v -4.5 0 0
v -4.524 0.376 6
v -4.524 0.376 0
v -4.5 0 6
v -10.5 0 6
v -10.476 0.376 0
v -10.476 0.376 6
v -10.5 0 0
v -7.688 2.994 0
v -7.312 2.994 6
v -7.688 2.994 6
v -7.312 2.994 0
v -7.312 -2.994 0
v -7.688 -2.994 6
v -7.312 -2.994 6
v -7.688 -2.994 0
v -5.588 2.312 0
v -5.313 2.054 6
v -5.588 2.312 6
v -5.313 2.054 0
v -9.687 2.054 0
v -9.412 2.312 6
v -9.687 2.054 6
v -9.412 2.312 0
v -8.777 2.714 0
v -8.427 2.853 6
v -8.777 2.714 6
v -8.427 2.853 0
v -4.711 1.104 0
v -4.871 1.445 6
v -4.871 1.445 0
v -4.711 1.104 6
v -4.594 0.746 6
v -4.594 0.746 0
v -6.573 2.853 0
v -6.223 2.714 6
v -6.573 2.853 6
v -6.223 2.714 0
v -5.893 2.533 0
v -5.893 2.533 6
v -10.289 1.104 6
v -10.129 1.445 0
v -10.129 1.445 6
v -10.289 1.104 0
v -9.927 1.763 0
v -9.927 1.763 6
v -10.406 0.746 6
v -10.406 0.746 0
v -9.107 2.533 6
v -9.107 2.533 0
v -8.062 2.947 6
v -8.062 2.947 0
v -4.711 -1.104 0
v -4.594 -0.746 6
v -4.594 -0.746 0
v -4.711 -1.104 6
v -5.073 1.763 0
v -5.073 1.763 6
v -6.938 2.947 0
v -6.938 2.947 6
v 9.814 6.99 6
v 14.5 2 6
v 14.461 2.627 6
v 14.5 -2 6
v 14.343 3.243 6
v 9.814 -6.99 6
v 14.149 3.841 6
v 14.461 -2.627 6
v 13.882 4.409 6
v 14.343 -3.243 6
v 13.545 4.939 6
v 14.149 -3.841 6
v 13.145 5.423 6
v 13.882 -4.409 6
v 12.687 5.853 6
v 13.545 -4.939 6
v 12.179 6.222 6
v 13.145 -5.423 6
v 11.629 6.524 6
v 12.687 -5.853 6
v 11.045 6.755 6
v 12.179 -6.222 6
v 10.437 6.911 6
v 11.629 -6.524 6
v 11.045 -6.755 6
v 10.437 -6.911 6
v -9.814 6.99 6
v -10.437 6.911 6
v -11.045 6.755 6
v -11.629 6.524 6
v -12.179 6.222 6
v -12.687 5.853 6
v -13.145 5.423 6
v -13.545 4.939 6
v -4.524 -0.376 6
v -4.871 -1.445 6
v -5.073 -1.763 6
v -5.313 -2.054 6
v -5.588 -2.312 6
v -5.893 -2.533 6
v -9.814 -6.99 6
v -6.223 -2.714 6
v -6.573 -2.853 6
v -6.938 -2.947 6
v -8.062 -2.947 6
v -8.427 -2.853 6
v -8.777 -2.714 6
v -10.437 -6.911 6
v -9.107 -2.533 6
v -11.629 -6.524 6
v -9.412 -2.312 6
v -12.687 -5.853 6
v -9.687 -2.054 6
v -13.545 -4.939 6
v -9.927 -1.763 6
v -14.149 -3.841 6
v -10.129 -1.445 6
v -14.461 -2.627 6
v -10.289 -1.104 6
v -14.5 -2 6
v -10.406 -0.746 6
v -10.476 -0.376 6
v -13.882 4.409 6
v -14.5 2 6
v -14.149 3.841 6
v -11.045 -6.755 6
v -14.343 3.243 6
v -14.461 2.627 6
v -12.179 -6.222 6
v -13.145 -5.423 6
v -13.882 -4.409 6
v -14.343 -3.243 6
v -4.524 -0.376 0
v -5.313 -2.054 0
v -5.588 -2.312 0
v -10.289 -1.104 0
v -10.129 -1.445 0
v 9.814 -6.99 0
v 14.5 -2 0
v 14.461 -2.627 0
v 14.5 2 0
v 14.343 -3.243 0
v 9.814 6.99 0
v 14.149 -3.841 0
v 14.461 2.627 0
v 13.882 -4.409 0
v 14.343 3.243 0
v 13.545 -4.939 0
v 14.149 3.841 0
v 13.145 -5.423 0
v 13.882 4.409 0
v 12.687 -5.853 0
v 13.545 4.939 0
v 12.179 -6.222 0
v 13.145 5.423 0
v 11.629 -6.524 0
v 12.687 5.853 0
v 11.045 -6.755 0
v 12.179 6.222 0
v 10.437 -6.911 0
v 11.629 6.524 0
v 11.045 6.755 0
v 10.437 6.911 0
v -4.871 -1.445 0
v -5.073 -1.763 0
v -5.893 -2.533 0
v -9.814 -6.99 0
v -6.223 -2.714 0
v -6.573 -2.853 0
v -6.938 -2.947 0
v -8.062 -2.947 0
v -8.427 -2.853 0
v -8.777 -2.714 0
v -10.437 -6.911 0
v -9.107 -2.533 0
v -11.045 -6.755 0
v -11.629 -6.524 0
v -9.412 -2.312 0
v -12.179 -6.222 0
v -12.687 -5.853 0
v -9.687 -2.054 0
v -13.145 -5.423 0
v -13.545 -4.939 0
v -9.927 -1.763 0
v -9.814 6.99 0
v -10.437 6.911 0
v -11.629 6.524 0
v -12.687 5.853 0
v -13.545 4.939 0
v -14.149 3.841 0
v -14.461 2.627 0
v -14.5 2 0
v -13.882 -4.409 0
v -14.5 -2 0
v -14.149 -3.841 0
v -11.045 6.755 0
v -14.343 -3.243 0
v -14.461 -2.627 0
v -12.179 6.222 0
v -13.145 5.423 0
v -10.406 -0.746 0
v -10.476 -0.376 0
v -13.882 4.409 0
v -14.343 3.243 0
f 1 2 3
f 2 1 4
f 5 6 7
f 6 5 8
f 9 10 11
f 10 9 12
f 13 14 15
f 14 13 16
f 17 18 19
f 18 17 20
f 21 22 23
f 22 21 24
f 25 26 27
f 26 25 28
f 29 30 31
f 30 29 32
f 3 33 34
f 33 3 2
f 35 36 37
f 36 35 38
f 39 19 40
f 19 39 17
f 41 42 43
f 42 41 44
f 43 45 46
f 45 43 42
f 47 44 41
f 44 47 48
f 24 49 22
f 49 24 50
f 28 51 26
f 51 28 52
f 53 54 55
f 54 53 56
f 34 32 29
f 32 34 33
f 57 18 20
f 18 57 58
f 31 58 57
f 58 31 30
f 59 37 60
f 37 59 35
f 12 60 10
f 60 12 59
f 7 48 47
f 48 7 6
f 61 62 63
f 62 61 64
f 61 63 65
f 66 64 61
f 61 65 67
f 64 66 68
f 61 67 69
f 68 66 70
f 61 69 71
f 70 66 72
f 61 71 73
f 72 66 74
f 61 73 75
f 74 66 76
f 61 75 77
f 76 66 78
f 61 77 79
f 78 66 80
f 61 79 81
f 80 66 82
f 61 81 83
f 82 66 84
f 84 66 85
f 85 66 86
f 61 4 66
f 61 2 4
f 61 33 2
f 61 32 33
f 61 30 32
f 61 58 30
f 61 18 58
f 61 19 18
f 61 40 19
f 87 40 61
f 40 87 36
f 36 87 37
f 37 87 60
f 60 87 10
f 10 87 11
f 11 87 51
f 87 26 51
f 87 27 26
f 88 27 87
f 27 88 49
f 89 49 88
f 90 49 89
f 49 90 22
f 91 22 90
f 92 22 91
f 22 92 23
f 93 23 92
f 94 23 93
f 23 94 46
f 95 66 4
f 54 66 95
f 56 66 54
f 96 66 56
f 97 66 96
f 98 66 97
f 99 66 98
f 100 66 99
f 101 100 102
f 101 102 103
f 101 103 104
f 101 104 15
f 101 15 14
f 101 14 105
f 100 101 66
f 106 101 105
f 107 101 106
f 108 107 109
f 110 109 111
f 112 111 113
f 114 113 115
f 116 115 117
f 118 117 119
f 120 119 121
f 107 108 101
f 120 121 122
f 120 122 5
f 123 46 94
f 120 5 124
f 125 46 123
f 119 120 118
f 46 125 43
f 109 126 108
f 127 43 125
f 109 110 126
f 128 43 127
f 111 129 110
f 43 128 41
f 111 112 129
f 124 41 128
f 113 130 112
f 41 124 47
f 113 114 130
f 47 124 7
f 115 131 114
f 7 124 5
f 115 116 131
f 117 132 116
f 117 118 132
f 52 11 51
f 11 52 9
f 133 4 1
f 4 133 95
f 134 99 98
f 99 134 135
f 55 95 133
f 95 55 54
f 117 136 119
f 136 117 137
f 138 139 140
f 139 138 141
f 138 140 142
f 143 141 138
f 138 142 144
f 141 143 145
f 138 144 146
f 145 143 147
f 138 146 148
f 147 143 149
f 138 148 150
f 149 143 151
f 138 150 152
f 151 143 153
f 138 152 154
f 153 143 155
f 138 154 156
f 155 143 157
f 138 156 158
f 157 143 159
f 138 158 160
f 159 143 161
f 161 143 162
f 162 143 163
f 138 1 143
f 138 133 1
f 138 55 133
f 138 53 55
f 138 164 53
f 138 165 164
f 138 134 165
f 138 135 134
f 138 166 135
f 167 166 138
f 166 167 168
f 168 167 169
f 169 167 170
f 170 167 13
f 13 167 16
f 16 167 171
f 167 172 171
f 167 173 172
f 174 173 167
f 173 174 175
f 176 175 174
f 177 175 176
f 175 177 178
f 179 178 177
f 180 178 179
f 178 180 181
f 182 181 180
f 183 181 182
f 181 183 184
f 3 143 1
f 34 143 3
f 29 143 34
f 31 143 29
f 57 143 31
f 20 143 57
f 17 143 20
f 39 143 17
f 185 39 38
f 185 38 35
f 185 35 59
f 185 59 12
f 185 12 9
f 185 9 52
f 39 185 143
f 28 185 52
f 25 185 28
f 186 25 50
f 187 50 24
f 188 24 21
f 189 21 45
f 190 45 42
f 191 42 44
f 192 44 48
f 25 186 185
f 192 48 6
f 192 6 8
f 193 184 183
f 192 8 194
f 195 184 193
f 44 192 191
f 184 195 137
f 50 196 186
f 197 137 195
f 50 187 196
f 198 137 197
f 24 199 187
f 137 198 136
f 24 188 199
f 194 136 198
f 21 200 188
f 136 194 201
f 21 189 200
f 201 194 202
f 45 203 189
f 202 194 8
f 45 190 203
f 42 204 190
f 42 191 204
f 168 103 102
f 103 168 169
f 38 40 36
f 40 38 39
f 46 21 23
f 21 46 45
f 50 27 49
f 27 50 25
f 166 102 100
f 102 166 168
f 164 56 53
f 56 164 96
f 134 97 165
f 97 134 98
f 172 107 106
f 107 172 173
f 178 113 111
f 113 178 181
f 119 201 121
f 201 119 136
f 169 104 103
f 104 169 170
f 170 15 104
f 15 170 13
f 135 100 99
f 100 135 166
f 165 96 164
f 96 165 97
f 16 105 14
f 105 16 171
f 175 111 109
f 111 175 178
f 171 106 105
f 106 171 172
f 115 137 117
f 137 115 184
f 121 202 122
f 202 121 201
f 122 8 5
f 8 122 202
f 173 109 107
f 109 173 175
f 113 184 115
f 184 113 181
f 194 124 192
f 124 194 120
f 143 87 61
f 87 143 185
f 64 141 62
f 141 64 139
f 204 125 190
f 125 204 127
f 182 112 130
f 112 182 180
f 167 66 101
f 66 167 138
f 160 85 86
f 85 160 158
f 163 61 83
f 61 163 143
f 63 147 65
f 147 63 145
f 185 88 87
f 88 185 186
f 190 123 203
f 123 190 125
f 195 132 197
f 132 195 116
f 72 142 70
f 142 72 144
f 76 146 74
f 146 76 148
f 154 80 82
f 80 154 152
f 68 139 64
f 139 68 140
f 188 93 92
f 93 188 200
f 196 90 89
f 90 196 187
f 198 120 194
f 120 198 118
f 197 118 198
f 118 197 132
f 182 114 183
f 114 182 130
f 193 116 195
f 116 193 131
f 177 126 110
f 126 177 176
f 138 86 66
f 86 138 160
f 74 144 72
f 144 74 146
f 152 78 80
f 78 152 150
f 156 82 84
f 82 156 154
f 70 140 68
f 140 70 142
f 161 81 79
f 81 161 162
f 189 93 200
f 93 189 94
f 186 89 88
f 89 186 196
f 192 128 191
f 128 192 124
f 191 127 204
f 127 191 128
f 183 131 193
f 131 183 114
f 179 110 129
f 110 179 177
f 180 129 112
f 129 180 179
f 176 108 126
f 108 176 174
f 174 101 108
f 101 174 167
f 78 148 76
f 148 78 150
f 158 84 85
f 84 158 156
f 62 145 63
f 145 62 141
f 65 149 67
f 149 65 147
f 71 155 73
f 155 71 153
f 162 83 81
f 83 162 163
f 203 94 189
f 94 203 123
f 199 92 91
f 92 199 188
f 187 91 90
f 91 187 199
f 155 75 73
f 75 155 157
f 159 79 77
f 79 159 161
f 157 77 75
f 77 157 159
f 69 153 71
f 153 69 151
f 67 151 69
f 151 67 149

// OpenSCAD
$fn = 50;


difference() {
	union() {
		hull() {
			translate(v = [-9.5000000000, 2.0000000000, 0]) {
				cylinder(h = 6, r = 5);
			}
			translate(v = [9.5000000000, 2.0000000000, 0]) {
				cylinder(h = 6, r = 5);
			}
			translate(v = [-9.5000000000, -2.0000000000, 0]) {
				cylinder(h = 6, r = 5);
			}
			translate(v = [9.5000000000, -2.0000000000, 0]) {
				cylinder(h = 6, r = 5);
			}
		}
	}
	union() {
		translate(v = [-7.5000000000, 0.0000000000, 0]) {
			cylinder(h = 6, r = 3.0000000000);
		}
		translate(v = [-7.5000000000, 0.0000000000, 0]) {
			cylinder(h = 6, r = 1.5000000000);
		}
		translate(v = [-7.5000000000, 0.0000000000, 0]) {
			cylinder(h = 6, r = 1.5000000000);
		}
		translate(v = [-7.5000000000, 0.0000000000, 0]) {
			cylinder(h = 6, r = 1.5000000000);
		}
	}
}
